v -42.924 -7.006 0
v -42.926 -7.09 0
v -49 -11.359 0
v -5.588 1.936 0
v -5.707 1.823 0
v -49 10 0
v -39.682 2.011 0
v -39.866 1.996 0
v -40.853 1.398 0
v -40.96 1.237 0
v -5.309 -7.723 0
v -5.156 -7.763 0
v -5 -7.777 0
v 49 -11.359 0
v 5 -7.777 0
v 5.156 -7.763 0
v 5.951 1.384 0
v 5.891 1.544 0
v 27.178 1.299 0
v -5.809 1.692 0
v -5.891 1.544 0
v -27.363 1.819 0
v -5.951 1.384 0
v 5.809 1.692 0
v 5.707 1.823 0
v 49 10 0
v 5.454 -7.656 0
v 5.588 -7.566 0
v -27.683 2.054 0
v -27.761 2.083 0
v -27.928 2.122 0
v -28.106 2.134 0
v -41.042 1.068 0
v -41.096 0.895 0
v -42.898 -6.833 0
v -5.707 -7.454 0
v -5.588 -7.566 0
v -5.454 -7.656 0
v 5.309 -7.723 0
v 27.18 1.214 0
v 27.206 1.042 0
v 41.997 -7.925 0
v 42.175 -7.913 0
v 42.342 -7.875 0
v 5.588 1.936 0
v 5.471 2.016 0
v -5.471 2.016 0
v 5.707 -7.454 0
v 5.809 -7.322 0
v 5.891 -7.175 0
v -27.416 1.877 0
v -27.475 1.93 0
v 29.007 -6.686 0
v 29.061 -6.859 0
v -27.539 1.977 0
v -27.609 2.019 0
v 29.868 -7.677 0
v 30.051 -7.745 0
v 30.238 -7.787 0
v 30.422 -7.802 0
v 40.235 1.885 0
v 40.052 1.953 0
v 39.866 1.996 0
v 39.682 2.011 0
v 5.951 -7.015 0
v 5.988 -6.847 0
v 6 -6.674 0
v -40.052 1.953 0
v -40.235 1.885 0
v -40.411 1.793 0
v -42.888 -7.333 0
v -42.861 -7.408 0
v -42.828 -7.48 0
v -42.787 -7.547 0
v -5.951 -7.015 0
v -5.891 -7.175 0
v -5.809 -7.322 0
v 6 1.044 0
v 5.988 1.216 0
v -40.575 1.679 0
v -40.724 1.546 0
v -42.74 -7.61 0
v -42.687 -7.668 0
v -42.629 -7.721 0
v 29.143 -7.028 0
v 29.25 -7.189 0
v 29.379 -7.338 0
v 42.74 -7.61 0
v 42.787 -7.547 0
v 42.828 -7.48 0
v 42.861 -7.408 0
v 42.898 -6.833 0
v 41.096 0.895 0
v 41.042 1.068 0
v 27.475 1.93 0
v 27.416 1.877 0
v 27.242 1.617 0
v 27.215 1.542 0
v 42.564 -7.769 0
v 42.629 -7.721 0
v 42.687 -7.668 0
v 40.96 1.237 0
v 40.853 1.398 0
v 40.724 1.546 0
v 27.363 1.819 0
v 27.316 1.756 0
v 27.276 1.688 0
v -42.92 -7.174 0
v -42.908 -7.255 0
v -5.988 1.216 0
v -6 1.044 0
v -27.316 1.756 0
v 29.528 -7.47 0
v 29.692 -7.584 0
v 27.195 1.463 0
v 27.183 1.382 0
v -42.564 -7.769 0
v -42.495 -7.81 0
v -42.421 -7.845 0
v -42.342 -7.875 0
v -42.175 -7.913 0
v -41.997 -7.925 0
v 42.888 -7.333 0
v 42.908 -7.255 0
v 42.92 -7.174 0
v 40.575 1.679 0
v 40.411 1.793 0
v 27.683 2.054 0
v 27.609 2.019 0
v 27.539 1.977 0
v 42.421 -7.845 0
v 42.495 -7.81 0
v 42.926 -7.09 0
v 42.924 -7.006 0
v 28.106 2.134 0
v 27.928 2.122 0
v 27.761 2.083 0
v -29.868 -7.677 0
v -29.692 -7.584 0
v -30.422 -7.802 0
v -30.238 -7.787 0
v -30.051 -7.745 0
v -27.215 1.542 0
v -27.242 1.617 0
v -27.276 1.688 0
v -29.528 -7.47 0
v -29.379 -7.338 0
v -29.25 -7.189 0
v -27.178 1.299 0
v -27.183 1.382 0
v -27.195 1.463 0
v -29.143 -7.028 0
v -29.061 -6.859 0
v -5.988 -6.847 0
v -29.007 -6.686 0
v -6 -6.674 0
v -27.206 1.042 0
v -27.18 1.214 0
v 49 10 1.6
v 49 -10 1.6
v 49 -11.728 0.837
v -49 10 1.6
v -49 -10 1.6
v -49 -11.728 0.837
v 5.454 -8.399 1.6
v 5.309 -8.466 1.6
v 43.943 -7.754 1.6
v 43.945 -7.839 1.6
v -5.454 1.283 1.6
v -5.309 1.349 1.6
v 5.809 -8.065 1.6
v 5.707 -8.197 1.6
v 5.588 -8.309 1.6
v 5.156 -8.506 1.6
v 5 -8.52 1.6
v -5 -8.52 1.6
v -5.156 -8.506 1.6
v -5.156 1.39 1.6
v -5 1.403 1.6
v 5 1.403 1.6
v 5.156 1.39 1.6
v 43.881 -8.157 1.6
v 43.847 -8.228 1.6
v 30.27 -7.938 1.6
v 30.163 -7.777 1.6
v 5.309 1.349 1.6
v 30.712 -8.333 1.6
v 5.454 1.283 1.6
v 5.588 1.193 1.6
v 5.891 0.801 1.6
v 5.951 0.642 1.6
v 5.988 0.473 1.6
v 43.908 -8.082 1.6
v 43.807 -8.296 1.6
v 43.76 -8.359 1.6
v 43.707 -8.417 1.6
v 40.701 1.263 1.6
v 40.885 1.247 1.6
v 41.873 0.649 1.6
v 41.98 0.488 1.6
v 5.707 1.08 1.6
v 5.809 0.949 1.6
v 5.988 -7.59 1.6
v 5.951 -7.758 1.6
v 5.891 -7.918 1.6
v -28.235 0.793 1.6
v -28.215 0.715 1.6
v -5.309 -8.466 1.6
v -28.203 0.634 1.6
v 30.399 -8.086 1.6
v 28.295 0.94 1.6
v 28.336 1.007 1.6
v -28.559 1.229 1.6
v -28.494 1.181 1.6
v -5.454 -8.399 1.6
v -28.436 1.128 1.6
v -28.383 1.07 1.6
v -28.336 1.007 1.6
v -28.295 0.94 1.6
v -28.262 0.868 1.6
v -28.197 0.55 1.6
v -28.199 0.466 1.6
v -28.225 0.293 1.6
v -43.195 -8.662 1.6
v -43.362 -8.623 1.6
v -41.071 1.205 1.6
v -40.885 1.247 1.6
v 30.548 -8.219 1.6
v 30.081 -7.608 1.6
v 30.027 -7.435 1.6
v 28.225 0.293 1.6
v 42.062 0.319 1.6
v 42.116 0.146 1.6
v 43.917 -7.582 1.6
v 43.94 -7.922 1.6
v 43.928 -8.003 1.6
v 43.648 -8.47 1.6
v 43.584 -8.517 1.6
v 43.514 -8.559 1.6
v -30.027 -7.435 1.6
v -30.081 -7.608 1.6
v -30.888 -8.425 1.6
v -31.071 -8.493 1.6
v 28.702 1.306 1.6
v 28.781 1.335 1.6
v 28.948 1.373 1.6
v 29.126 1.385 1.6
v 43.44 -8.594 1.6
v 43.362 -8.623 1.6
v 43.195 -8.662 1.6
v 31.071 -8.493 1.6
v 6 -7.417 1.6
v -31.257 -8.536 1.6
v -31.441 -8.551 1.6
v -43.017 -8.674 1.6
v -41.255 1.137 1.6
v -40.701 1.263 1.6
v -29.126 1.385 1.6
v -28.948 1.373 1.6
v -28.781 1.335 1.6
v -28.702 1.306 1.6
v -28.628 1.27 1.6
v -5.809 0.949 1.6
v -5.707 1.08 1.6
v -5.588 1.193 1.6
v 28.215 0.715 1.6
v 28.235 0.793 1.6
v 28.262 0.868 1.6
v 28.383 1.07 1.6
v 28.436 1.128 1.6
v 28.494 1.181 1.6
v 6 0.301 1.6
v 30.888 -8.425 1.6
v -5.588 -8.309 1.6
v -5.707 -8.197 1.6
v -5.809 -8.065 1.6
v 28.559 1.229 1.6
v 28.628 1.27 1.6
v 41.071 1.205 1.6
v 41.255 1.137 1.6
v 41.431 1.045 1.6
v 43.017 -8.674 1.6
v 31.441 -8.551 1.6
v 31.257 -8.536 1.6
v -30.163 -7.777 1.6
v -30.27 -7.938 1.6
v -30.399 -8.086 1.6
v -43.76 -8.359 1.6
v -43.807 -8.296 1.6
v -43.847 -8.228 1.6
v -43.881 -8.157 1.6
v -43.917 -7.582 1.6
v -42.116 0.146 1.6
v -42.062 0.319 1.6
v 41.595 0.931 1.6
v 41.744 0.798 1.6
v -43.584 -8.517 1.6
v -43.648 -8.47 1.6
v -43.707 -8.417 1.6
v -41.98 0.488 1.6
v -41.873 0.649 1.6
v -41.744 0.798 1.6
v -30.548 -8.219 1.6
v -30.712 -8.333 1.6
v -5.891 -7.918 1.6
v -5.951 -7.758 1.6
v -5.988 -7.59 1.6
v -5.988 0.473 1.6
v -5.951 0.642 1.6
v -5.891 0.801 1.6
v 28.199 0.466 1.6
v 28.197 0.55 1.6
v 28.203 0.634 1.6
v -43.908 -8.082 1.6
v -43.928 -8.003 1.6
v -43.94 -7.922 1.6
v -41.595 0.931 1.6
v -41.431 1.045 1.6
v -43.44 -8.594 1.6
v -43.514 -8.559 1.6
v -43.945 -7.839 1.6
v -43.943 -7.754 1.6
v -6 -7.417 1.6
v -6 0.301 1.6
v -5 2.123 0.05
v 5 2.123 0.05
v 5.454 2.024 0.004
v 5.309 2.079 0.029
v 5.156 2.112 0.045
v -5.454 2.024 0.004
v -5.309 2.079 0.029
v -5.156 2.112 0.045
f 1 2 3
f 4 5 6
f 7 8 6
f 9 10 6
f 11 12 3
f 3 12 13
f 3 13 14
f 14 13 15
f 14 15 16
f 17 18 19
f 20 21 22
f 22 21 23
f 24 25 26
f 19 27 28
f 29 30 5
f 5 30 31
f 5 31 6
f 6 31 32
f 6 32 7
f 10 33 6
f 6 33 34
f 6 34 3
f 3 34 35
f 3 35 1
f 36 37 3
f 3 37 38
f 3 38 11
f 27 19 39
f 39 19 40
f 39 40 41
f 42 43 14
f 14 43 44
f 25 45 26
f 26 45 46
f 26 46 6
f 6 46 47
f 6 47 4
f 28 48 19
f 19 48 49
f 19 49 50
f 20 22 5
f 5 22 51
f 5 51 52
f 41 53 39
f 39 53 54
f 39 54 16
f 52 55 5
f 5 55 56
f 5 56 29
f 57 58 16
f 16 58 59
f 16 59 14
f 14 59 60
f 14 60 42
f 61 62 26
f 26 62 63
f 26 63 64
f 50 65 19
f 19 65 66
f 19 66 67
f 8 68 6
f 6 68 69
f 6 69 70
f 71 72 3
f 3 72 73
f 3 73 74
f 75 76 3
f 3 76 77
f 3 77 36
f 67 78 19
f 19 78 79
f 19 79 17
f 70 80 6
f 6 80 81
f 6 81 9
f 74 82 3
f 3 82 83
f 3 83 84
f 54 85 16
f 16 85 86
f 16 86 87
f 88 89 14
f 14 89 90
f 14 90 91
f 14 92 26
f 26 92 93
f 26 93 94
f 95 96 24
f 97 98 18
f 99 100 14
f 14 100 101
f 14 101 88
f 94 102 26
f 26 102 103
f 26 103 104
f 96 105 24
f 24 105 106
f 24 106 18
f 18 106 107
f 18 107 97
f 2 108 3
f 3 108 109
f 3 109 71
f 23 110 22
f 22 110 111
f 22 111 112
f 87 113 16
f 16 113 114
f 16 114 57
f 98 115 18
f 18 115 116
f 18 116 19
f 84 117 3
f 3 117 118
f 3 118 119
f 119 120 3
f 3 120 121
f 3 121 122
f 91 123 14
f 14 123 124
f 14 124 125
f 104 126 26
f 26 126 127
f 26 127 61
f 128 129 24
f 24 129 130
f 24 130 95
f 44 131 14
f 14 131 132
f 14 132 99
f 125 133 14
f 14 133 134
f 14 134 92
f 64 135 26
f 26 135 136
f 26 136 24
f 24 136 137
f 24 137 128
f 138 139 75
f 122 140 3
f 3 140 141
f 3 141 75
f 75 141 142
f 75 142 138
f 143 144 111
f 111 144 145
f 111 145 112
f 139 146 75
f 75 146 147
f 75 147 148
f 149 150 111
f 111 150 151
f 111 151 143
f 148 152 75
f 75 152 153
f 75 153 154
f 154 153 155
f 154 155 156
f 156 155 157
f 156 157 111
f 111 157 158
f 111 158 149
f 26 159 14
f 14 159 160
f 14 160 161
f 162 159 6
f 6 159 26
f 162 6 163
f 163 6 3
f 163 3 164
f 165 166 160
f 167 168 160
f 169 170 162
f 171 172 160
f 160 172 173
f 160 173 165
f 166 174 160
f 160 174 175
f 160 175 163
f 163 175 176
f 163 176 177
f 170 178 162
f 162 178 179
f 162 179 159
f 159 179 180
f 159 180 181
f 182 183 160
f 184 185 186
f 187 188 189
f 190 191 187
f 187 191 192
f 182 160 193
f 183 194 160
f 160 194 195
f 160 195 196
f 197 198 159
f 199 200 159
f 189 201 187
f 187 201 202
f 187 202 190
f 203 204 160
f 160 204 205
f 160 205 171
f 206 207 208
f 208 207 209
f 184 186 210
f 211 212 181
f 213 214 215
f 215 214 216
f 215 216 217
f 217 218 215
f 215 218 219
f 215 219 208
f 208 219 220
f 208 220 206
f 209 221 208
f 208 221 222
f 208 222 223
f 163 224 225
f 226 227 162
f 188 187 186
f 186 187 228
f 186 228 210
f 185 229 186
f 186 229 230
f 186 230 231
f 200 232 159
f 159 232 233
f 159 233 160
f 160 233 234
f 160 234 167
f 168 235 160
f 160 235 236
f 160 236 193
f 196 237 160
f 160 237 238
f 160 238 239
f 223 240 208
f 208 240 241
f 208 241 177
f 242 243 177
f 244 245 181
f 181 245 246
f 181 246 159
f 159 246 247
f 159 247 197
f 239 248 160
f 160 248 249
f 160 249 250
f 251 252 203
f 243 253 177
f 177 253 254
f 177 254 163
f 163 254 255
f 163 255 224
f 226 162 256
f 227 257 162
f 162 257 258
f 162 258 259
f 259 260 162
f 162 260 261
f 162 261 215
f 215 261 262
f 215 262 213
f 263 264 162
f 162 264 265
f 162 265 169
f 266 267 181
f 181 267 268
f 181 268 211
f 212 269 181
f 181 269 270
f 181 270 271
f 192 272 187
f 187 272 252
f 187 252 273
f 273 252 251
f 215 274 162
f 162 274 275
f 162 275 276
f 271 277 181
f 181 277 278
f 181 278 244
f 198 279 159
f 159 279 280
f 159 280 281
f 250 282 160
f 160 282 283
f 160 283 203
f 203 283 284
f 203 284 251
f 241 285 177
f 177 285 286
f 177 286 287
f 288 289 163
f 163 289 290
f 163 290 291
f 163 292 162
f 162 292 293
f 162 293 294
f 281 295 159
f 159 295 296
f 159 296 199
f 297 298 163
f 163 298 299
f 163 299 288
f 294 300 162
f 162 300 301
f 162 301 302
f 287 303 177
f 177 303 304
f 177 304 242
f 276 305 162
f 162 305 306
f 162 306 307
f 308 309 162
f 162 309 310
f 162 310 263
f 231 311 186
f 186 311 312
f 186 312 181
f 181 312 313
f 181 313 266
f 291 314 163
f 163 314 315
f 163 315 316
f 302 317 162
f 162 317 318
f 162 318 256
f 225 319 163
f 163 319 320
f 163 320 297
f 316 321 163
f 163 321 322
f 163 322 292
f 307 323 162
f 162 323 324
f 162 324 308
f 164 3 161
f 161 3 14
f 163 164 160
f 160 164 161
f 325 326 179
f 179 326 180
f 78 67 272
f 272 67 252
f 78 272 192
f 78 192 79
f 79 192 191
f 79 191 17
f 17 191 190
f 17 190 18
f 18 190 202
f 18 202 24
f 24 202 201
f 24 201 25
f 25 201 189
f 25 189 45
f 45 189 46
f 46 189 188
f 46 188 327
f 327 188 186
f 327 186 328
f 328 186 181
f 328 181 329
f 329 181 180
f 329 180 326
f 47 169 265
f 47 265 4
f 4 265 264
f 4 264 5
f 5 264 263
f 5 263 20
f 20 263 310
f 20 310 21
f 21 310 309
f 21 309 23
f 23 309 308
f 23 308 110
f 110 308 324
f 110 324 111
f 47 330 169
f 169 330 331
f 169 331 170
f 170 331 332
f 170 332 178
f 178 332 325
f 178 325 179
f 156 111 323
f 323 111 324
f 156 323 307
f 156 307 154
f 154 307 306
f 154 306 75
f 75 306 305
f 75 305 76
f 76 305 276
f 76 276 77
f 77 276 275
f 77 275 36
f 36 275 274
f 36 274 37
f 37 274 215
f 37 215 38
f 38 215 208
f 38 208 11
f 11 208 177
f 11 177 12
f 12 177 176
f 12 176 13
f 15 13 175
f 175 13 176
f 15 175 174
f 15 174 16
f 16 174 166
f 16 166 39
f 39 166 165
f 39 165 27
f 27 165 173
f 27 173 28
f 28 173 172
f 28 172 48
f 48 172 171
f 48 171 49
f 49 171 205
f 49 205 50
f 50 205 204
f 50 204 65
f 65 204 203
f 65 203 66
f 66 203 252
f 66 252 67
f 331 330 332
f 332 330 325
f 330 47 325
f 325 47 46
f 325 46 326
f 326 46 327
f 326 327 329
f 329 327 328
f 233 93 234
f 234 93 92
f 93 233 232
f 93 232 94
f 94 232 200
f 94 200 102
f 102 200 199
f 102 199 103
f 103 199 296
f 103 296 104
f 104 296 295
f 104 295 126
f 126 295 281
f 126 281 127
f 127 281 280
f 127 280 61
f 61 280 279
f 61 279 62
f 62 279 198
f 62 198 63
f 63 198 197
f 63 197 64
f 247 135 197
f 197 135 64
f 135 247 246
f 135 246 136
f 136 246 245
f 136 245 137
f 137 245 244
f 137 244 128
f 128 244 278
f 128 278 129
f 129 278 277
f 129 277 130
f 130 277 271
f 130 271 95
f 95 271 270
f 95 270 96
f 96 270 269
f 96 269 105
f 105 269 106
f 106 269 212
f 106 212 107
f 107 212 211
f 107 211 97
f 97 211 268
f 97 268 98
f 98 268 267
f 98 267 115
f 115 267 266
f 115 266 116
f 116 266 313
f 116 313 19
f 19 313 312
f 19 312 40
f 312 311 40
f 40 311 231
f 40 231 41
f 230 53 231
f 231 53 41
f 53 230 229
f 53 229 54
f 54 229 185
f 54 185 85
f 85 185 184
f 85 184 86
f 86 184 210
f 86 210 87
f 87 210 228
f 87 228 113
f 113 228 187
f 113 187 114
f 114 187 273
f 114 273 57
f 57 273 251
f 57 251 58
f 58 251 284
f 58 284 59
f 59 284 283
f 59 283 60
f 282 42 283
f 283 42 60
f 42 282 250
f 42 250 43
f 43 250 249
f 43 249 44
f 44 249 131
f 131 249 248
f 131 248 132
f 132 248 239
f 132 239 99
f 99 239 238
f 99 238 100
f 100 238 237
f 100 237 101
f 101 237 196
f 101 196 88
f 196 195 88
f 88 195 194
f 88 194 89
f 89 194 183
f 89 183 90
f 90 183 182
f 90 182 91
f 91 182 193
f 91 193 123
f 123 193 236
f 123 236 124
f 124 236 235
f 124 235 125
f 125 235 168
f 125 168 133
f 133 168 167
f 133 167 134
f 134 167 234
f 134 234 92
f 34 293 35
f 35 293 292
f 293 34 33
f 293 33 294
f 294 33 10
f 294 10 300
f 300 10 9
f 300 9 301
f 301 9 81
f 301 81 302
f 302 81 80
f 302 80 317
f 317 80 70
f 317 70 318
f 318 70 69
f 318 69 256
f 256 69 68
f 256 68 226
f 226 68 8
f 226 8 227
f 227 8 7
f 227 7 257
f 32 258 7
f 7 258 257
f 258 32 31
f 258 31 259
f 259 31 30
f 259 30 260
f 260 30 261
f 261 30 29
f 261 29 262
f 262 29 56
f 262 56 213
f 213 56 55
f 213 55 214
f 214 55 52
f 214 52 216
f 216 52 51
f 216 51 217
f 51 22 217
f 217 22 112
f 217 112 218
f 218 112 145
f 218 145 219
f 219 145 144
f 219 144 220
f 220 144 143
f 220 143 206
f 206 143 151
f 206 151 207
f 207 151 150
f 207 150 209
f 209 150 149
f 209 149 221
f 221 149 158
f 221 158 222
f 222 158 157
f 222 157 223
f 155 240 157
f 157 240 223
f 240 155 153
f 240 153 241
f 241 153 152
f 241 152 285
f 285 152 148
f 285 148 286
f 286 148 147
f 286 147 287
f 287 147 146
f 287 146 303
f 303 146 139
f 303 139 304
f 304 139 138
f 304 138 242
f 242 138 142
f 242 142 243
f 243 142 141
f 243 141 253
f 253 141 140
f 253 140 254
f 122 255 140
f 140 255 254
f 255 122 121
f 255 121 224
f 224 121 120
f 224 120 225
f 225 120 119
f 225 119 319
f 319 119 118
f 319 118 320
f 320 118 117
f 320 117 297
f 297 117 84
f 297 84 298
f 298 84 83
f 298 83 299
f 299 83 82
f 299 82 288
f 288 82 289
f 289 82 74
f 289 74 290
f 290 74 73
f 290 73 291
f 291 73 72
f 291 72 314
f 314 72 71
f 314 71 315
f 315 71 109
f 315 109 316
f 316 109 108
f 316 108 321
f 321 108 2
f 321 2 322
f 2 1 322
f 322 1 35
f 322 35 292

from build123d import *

# Parameters (mm, degrees)
CROQUIS1_W              = 98
CROQUIS1_H              = 20
SALIENTE_EXTRUIR1_DEPTH = 1.6
SALIENTE_EXTRUIR2_DEPTH = 98
CORTAR_EXTRUIR1_START   = -8
CORTAR_EXTRUIR1_DEPTH   = 20
CORTAR_EXTRUIR2_REACH   = 91.04


with BuildPart() as part:
    # Croquis1 → Saliente-Extruir1 (new body)
    with BuildSketch(Plane.XY):
        Rectangle(CROQUIS1_W, CROQUIS1_H)
    extrude(amount=SALIENTE_EXTRUIR1_DEPTH)

    # Croquis2 → Saliente-Extruir2 (add)
    with BuildSketch(Plane(origin=(49, 0, 0), x_dir=(0, 0, -1), z_dir=(1, 0, 0))):
        Polygon((0, -11.359205127), (-0.837384271, -11.728681668), (-1.6, -10), (0, -10), align=None)
    extrude(amount=-SALIENTE_EXTRUIR2_DEPTH)

    # Croquis3 → Cortar-Extruir1 (cut)
    with BuildSketch(Plane(origin=(0, -10.293644781, -14.534478238), x_dir=(-1, 0, 0), z_dir=(0, 0.42110532053516664, -0.9070117469013147)).offset(CORTAR_EXTRUIR1_START)):
        with BuildLine():
            Line((6, 9.403690819), (6, 16.403690819))
            ThreePointArc((6, 16.403690819), (5.707106781, 17.1107976), (5, 17.403690819))
            Line((5, 17.403690819), (-5, 17.403690819))
            ThreePointArc((-5, 17.403690819), (-5.707106781, 17.1107976), (-6, 16.403690819))
            Line((-6, 16.403690819), (-6, 9.403690819))
            ThreePointArc((-6, 9.403690819), (-5.707106781, 8.696584037), (-5, 8.403690819))
            Line((-5, 8.403690819), (5, 8.403690819))
            ThreePointArc((5, 8.403690819), (5.707106781, 8.696584037), (6, 9.403690819))
        make_face()
    extrude(amount=-CORTAR_EXTRUIR1_DEPTH, mode=Mode.SUBTRACT)

    # Cortar-Extruir2: from a plane face, 91.04 long prism both ways, kept between that surface and its translate by the depth
    cortar_extruir2_start = Plane(origin=(0, 0, 1.6), z_dir=(0, 0, -1)) * Box(366.16, 366.16, 183.08, align=(Align.CENTER, Align.CENTER, Align.MIN), mode=Mode.PRIVATE)
    cortar_extruir2_end = Plane(origin=(-9.998158796, 7.340799912, -14.089151581), z_dir=(0, 0, -1)) * Box(366.16, 366.16, 183.08, align=(Align.CENTER, Align.CENTER, Align.MIN), mode=Mode.PRIVATE)
    # Croquis4 → Cortar-Extruir2 (cut, from a surface)
    with BuildSketch(Plane(origin=(15.242771226, -12.659892112, -9.623968273), x_dir=(-0.8660785482382583, -0.21185862229734287, 0.4527956188389888), z_dir=(-0.49990793980643183, 0.36703999560816625, -0.7844575790585788)), mode=Mode.PRIVATE) as cortar_extruir2_sk1:
        with BuildLine():
            Line((-8.828097078, 9.489452405), (-8.905642597, 16.48902287))
            ThreePointArc((-8.905642597, 16.48902287), (-9.206351123, 17.19284161), (-9.916659166, 17.477883576))
            Line((-9.916659166, 17.477883576), (-19.916045544, 17.367104263))
            ThreePointArc((-19.916045544, 17.367104263), (-20.619864285, 17.066395736), (-20.904906251, 16.356087694))
            Line((-20.904906251, 16.356087694), (-20.827360732, 9.356517229))
            ThreePointArc((-20.827360732, 9.356517229), (-20.526652205, 8.652698488), (-19.816344162, 8.367656522))
            Line((-19.816344162, 8.367656522), (-9.816957784, 8.478435835))
            ThreePointArc((-9.816957784, 8.478435835), (-9.113139043, 8.779144362), (-8.828097078, 9.489452405))
        make_face()
    cortar_extruir2_tool1 = extrude(cortar_extruir2_sk1.sketch, amount=CORTAR_EXTRUIR2_REACH, both=True, mode=Mode.PRIVATE)
    cortar_extruir2 = ((cortar_extruir2_tool1 & cortar_extruir2_start) - cortar_extruir2_end).solids().sort_by_distance((35.560858, -3.26981, 0.8))[0]
    add(cortar_extruir2, mode=Mode.SUBTRACT)

    # Simetría1: Cortar-Extruir2 across plane
    add(cortar_extruir2.mirror(Plane(origin=(0, 0, 0), x_dir=(0, 0, 1), z_dir=(1, 0, 0))), mode=Mode.SUBTRACT)


solid = part.part
